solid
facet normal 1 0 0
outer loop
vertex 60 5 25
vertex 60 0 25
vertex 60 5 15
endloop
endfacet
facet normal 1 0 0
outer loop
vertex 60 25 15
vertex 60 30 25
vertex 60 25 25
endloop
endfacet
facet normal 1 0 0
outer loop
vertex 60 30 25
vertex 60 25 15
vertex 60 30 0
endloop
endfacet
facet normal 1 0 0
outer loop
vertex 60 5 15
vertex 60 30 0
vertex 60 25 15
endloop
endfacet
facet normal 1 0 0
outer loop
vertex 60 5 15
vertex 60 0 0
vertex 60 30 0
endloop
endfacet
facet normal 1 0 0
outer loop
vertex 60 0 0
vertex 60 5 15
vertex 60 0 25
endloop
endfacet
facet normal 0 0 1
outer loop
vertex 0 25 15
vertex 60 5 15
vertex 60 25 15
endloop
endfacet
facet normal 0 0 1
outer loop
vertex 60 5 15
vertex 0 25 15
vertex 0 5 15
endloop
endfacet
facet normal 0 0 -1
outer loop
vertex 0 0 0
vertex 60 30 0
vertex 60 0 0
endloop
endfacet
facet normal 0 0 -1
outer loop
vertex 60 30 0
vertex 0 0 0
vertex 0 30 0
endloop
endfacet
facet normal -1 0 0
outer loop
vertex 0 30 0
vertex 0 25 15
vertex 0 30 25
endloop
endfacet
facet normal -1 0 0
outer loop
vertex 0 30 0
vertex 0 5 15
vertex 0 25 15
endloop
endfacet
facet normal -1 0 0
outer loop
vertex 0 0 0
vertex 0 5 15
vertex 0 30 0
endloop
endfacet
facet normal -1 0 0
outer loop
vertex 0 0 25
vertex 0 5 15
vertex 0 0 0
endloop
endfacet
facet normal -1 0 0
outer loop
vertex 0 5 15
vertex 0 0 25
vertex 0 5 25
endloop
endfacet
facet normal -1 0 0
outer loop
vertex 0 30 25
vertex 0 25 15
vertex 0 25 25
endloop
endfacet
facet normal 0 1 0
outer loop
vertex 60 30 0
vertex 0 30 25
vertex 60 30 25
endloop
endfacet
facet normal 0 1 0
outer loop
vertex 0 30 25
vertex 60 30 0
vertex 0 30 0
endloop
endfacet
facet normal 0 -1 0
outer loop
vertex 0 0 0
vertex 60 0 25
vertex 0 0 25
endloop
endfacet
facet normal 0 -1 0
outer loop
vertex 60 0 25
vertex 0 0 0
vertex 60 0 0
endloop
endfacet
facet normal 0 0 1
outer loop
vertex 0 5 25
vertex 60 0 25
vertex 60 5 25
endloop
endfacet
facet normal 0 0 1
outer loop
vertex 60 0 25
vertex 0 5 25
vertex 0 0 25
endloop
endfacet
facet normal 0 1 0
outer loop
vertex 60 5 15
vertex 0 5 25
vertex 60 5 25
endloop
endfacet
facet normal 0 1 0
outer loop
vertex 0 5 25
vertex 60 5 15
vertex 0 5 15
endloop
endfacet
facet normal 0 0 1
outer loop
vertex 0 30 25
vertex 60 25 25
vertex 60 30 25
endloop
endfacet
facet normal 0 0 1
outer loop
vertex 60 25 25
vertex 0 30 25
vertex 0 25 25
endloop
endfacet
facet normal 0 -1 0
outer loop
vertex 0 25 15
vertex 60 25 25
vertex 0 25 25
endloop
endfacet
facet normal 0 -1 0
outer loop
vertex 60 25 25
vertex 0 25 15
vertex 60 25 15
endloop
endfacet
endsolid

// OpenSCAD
// Dimensions
base_length = 60;  // Length of the base block
base_width = 30;   // Width of the base block
base_height = 15;  // Height of the base block

side_wall_thickness = 5;  // Thickness of the side walls
side_wall_height = 10;    // Height of the side walls

slot_width = base_width - 2 * side_wall_thickness;  // Width of the central slot
slot_depth = 10;  // Depth of the central slot

// Base block
module base_block() {
    cube([base_length, base_width, base_height]);
}

// Side walls
module side_wall() {
    cube([base_length, side_wall_thickness, side_wall_height]);
}

// Central slot
module central_slot() {
    translate([0, side_wall_thickness, 0])
        cube([base_length, slot_width, slot_depth]);
}

// Assembling the model
module flexible_coupling() {
    // Base block
    base_block();

    // Side walls
    translate([0, 0, base_height])
        side_wall();
    translate([0, base_width - side_wall_thickness, base_height])
        side_wall();

    // Central slot
    translate([0, 0, base_height - slot_depth])
        central_slot();
}

// Render the model
flexible_coupling();
